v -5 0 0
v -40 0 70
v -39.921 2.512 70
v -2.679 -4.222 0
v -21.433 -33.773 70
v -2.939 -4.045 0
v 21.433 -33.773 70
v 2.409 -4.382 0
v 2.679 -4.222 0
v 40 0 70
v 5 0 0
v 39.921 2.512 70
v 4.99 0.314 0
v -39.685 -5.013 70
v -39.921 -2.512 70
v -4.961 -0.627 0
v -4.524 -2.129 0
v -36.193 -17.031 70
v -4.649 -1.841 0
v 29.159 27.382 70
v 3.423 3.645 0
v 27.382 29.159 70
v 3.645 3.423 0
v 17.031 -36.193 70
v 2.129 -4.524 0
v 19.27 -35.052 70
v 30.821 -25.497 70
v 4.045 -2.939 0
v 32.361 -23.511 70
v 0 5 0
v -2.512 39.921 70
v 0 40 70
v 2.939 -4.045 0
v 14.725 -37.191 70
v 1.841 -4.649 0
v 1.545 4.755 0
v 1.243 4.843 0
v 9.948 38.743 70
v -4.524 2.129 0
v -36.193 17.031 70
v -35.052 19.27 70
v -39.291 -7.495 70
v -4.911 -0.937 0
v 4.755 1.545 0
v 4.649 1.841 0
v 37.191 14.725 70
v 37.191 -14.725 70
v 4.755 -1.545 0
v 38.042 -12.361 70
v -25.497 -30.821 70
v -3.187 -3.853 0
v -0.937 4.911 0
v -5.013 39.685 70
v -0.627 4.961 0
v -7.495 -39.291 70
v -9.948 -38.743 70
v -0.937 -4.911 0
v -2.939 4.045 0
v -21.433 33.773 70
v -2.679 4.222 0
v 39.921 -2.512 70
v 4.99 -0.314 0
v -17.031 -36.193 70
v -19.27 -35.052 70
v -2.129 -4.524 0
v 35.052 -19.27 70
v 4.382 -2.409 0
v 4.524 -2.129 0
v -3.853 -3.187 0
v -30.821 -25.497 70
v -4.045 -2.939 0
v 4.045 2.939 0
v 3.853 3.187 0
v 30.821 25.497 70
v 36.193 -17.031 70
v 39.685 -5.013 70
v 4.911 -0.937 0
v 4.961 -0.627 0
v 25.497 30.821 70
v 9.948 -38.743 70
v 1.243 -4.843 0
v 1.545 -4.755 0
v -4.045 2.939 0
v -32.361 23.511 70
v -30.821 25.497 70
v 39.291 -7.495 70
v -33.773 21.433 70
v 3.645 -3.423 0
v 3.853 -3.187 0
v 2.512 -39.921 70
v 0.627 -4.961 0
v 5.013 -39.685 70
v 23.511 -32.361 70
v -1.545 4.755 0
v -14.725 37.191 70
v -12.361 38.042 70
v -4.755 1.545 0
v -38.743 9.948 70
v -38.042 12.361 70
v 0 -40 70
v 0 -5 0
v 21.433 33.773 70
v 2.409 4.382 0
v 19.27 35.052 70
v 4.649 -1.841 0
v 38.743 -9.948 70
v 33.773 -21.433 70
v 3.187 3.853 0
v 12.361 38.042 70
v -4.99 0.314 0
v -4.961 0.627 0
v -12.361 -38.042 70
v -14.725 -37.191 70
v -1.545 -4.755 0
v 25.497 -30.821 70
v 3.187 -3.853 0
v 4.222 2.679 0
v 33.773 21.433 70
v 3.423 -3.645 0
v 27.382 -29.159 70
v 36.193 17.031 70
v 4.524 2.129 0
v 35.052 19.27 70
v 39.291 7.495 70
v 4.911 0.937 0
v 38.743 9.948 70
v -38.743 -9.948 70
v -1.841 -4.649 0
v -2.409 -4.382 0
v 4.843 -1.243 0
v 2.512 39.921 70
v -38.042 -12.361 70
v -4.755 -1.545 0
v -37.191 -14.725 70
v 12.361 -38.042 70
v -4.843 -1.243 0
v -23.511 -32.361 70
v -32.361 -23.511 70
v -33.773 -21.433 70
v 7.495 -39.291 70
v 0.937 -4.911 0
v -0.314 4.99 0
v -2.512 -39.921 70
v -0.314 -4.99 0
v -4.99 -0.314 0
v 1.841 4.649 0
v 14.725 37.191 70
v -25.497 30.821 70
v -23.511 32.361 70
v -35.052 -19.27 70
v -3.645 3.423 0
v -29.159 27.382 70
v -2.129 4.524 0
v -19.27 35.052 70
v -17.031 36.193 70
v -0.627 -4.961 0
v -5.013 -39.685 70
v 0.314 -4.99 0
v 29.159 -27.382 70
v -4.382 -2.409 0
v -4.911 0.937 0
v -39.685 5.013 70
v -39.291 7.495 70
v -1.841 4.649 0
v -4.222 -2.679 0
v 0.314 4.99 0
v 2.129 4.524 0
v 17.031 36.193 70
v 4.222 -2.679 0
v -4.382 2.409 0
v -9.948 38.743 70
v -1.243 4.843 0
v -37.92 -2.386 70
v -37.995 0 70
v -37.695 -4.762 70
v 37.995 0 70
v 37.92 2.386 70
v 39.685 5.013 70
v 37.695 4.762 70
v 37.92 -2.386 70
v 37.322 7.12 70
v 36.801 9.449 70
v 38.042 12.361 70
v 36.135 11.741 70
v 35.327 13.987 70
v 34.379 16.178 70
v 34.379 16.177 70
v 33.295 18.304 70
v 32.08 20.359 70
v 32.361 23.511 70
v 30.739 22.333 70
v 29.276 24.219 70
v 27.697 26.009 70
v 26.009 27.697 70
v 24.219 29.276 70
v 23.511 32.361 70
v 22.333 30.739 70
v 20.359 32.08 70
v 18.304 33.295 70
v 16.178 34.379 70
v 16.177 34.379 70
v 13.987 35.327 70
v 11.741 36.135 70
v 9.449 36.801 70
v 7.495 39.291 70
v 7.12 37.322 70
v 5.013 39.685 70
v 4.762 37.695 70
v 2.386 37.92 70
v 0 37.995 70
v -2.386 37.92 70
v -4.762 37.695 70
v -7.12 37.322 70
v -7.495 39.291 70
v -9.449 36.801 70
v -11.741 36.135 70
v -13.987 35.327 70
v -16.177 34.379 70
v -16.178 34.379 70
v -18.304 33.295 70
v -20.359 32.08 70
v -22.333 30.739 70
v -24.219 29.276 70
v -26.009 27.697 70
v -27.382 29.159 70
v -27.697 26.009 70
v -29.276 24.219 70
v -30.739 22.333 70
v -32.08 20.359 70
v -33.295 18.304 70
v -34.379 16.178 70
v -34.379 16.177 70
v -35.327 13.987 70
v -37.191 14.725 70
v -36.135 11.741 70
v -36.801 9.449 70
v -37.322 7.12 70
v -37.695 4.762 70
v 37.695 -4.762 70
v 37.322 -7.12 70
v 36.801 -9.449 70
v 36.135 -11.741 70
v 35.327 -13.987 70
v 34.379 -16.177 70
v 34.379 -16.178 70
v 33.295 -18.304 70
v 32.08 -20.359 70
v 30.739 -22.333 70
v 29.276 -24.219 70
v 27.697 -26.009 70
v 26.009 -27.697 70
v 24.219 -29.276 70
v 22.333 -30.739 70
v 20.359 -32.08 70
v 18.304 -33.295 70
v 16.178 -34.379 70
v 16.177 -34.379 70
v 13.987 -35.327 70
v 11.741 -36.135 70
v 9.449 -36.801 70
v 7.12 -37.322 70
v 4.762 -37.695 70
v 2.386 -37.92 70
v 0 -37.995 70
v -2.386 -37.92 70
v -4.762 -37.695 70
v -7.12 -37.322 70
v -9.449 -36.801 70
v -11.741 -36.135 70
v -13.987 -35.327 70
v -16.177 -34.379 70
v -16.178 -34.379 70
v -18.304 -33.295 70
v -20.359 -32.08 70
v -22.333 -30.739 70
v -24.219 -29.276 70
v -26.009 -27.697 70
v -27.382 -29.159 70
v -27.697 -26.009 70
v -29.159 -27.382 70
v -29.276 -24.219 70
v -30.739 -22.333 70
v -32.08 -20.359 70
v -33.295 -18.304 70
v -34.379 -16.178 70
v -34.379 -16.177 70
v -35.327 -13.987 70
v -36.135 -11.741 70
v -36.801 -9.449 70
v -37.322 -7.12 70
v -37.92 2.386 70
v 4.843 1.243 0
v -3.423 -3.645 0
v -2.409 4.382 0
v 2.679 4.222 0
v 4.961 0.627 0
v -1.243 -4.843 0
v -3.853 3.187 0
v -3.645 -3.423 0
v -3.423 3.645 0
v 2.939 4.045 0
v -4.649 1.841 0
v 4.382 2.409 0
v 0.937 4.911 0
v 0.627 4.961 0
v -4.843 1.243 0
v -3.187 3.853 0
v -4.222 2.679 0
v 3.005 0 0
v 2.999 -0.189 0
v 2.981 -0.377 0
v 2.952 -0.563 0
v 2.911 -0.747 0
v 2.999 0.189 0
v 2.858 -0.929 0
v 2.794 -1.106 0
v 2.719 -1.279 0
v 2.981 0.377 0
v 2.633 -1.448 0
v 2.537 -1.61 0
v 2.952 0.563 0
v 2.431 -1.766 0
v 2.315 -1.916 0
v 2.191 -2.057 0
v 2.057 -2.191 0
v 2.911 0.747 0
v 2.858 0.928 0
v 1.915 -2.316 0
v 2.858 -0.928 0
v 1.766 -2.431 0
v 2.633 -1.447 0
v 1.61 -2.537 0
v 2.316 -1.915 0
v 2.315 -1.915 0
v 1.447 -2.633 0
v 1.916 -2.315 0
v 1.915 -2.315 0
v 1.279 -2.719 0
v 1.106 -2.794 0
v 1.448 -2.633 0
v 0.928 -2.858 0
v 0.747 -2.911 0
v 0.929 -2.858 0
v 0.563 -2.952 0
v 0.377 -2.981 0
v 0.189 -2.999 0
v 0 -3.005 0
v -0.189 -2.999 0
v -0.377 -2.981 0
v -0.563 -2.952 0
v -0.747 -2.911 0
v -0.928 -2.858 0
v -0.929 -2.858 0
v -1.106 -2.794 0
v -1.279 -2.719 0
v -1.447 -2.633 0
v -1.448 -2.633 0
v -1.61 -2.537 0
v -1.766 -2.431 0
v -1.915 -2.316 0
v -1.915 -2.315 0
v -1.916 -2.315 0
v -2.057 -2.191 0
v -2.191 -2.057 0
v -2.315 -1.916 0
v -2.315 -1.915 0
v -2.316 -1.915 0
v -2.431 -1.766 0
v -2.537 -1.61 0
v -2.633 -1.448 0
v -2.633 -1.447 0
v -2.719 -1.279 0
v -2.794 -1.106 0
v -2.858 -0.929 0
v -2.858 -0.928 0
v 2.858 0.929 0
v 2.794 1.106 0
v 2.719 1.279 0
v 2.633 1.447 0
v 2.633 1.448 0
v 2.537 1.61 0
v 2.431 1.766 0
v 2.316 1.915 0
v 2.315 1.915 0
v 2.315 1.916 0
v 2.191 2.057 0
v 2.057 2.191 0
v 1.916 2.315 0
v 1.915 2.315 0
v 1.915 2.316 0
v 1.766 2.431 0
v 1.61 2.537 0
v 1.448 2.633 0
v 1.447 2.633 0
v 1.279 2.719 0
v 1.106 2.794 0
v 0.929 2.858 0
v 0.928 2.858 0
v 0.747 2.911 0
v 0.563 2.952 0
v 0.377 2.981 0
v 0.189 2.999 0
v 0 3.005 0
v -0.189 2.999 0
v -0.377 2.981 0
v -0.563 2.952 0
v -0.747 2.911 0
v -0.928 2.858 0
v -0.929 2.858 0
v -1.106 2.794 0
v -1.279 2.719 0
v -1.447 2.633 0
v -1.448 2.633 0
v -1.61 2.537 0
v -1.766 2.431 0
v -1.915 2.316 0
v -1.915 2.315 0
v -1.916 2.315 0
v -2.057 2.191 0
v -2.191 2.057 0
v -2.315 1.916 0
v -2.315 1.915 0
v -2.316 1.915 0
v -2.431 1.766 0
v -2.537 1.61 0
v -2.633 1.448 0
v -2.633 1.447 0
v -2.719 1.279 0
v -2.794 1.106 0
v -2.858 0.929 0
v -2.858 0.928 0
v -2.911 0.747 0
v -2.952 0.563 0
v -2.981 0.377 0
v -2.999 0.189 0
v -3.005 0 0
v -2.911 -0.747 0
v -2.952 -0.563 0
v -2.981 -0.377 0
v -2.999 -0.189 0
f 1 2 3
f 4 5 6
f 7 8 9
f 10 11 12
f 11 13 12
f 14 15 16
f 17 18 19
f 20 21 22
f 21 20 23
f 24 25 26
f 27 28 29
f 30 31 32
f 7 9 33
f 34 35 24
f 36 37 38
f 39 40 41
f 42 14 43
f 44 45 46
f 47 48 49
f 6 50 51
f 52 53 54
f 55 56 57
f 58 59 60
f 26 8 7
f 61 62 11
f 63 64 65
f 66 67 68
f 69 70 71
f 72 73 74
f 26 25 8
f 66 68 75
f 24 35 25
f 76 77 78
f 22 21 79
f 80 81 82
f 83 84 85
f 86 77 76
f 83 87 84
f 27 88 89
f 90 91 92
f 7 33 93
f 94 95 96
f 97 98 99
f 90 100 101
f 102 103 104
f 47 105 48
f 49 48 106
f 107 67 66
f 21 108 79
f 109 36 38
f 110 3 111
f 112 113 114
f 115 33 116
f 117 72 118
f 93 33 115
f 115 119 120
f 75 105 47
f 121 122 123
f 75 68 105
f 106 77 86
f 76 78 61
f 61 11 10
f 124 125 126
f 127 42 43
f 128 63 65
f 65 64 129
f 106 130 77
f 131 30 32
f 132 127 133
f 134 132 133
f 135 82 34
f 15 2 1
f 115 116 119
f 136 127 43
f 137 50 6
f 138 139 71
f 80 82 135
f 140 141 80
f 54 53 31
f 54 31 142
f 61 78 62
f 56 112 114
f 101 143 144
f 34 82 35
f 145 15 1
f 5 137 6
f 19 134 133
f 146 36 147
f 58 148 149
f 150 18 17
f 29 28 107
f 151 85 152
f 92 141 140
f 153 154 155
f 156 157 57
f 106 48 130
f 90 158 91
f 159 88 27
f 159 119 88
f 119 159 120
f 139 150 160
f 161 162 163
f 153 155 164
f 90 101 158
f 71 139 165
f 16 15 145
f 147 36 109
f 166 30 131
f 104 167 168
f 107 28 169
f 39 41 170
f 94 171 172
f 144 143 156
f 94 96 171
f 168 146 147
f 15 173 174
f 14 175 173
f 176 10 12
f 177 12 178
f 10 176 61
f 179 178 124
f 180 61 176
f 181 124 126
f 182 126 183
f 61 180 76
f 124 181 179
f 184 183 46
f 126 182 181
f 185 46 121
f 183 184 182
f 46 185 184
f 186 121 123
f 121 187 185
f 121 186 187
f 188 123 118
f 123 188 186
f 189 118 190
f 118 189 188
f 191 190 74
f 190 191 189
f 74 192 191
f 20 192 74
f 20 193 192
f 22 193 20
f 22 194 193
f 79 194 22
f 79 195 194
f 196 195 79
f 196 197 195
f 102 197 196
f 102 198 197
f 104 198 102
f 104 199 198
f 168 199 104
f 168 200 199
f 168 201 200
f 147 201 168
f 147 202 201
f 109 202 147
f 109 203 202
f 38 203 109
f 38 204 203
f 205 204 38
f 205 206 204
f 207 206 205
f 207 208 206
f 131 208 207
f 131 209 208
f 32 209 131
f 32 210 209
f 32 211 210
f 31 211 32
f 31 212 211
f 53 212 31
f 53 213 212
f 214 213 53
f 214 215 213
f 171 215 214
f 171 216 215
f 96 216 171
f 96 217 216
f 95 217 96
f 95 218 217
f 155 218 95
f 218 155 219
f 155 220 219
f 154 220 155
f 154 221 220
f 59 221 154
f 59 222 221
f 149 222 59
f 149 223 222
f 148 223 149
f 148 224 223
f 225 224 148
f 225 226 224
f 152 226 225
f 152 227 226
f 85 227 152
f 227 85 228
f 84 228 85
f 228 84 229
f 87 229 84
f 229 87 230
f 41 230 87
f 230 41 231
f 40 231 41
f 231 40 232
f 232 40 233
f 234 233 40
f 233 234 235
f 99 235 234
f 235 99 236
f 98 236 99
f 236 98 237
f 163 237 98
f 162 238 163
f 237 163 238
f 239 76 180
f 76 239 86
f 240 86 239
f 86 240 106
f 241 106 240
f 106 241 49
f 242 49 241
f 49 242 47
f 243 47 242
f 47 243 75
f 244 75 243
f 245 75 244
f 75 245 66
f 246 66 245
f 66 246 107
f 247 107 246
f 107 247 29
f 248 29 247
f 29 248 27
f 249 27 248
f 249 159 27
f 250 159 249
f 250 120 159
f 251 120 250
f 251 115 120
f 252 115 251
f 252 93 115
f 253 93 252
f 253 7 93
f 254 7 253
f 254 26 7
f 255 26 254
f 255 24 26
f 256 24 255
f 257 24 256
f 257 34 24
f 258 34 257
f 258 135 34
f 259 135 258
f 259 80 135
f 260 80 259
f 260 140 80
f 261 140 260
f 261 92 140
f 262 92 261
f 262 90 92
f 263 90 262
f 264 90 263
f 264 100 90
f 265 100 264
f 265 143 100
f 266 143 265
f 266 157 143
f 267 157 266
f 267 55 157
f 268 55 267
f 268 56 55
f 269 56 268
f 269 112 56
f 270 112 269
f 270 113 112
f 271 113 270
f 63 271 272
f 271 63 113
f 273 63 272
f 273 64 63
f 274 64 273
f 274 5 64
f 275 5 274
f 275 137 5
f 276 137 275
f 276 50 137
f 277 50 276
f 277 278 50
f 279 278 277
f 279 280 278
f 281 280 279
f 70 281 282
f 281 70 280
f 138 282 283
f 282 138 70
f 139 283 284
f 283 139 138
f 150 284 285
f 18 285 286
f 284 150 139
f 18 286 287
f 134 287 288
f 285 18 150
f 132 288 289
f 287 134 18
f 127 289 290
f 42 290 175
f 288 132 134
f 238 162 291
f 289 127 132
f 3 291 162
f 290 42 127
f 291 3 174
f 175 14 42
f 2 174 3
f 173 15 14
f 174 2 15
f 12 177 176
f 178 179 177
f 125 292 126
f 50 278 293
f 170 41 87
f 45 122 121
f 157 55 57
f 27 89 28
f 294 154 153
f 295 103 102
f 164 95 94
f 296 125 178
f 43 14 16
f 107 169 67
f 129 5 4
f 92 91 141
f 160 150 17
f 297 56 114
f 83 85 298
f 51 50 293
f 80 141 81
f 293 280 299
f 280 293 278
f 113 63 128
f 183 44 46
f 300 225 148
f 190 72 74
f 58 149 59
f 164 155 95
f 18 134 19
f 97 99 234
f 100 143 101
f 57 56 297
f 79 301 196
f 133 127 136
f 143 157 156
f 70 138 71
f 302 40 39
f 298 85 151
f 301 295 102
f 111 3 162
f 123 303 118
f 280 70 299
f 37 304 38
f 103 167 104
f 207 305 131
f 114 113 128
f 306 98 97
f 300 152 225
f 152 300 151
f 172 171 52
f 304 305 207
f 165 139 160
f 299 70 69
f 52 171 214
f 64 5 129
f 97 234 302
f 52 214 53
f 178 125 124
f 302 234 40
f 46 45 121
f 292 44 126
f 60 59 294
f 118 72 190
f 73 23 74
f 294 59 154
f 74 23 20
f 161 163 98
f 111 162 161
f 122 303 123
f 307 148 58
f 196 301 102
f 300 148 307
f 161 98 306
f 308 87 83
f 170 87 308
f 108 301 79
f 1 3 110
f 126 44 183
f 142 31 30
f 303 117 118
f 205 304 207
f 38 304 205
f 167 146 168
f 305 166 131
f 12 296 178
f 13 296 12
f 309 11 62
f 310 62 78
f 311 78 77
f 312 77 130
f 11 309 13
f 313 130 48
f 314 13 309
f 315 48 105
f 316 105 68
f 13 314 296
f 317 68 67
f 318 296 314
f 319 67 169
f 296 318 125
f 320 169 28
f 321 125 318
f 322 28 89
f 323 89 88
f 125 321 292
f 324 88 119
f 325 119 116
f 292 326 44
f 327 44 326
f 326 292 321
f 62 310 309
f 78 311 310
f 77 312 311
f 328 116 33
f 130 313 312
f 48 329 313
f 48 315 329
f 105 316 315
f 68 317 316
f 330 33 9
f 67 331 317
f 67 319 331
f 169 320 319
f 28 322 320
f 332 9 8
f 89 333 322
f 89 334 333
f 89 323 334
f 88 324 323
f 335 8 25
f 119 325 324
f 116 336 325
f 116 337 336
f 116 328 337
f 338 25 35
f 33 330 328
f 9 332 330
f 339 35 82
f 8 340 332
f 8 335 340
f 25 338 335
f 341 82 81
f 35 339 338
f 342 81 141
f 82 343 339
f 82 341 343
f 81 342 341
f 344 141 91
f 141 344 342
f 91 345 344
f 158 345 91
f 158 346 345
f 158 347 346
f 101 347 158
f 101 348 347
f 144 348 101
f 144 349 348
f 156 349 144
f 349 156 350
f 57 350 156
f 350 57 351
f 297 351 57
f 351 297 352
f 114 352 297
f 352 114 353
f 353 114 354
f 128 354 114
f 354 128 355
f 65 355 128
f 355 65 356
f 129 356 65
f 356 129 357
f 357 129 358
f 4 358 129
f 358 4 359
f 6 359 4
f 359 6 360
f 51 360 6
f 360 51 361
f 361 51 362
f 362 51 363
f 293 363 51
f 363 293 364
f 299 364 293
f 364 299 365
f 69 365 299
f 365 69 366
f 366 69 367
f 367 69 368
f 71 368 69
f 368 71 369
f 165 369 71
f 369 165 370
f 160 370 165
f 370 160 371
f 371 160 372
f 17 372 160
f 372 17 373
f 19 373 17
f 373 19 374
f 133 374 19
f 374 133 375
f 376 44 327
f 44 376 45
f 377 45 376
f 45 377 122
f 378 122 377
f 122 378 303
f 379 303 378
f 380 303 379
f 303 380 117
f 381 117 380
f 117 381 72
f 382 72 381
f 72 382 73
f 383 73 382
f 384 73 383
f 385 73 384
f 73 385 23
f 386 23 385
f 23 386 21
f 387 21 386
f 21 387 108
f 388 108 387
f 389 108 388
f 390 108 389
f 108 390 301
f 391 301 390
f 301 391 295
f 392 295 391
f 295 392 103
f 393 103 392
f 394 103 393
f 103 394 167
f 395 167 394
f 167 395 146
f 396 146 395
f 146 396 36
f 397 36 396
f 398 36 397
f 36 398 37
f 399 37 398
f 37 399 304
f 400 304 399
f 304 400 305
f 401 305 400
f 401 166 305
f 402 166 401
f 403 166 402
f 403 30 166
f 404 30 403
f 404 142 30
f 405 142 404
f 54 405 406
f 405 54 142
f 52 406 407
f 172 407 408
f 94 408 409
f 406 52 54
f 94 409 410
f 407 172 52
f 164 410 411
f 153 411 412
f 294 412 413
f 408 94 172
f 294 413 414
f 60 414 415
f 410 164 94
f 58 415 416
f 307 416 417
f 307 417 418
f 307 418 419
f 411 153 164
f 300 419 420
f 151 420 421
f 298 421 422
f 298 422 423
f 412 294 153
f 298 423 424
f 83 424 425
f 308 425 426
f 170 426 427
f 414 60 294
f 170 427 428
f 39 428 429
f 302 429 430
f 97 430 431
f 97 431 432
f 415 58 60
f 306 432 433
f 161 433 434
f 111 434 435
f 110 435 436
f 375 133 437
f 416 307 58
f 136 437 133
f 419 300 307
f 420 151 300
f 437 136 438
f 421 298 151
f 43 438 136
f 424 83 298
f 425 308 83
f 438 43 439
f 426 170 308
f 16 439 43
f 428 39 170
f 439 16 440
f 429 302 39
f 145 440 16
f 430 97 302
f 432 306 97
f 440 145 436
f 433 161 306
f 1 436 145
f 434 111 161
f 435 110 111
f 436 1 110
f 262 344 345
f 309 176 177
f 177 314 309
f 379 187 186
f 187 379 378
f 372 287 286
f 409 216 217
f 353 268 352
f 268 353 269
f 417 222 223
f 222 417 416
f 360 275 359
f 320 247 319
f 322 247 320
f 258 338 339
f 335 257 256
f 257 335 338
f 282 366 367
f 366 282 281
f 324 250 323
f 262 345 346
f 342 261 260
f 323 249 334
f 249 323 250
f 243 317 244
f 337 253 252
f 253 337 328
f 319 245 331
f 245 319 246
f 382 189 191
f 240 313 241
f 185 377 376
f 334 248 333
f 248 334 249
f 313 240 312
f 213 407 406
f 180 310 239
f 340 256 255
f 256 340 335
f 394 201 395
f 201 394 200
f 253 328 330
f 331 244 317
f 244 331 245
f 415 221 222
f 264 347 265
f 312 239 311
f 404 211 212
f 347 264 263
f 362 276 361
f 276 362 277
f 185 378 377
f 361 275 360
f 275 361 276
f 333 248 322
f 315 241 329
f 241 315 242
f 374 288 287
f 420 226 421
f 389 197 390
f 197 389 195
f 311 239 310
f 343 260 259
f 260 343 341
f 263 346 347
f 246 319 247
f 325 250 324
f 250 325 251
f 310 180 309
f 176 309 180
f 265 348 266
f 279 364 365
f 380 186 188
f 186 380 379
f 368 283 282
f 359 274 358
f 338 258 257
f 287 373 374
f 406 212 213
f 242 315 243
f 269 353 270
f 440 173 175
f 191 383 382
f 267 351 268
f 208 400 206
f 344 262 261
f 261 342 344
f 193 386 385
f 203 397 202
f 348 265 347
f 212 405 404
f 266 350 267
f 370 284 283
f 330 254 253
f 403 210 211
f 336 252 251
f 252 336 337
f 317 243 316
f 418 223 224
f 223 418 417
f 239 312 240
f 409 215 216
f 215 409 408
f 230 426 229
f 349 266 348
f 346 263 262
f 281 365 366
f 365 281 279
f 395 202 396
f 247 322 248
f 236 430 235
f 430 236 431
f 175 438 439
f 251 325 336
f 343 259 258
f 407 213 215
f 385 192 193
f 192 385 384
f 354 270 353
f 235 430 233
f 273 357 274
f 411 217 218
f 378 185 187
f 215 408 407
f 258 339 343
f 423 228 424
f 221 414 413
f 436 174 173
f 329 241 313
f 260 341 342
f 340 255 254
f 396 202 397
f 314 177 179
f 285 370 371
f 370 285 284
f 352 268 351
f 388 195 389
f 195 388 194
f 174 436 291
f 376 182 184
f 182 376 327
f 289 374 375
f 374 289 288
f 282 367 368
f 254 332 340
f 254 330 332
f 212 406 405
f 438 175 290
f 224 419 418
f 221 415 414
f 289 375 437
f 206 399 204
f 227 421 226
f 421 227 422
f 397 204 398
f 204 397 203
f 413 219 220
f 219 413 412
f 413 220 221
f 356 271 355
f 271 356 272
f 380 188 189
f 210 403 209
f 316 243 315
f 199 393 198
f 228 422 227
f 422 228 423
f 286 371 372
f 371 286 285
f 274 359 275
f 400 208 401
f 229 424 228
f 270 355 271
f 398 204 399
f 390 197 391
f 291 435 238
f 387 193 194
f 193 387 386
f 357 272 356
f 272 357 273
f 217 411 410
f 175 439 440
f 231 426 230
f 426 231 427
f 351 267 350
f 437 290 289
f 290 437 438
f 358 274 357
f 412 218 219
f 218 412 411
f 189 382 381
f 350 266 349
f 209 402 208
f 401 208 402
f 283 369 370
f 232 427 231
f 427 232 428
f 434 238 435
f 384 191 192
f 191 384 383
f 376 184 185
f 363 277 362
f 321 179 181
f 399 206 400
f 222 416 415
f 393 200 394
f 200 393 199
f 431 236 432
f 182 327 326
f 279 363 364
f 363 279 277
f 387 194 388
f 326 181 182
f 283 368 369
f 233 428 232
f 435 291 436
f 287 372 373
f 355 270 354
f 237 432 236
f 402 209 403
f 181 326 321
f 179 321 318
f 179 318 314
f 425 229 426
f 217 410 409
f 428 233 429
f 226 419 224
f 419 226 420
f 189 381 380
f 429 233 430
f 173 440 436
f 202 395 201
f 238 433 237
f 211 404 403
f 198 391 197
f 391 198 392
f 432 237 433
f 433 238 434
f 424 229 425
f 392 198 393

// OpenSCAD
// Parameters (mm)
TOP_DIAMETER = 80;    // Outer diameter of the top opening
BOTTOM_DIAMETER = 10; // Outer diameter of the bottom tip
HEIGHT = 70;          // Total height
WALL = 2;           // Wall thickness

$fn = 100;

// Small overlap to avoid zero-thickness faces when subtracting
eps = 0.01;

// Inner diameters, with the wall measured perpendicular-ish (kept simple: radial)
top_inner = TOP_DIAMETER - 2 * WALL;
bottom_inner = BOTTOM_DIAMETER - 2 * WALL;

difference() {
    cylinder(h = HEIGHT, d1 = BOTTOM_DIAMETER, d2 = TOP_DIAMETER);
    translate([0, 0, -eps])
        cylinder(h = HEIGHT + 2 * eps, d1 = bottom_inner, d2 = top_inner);
}
